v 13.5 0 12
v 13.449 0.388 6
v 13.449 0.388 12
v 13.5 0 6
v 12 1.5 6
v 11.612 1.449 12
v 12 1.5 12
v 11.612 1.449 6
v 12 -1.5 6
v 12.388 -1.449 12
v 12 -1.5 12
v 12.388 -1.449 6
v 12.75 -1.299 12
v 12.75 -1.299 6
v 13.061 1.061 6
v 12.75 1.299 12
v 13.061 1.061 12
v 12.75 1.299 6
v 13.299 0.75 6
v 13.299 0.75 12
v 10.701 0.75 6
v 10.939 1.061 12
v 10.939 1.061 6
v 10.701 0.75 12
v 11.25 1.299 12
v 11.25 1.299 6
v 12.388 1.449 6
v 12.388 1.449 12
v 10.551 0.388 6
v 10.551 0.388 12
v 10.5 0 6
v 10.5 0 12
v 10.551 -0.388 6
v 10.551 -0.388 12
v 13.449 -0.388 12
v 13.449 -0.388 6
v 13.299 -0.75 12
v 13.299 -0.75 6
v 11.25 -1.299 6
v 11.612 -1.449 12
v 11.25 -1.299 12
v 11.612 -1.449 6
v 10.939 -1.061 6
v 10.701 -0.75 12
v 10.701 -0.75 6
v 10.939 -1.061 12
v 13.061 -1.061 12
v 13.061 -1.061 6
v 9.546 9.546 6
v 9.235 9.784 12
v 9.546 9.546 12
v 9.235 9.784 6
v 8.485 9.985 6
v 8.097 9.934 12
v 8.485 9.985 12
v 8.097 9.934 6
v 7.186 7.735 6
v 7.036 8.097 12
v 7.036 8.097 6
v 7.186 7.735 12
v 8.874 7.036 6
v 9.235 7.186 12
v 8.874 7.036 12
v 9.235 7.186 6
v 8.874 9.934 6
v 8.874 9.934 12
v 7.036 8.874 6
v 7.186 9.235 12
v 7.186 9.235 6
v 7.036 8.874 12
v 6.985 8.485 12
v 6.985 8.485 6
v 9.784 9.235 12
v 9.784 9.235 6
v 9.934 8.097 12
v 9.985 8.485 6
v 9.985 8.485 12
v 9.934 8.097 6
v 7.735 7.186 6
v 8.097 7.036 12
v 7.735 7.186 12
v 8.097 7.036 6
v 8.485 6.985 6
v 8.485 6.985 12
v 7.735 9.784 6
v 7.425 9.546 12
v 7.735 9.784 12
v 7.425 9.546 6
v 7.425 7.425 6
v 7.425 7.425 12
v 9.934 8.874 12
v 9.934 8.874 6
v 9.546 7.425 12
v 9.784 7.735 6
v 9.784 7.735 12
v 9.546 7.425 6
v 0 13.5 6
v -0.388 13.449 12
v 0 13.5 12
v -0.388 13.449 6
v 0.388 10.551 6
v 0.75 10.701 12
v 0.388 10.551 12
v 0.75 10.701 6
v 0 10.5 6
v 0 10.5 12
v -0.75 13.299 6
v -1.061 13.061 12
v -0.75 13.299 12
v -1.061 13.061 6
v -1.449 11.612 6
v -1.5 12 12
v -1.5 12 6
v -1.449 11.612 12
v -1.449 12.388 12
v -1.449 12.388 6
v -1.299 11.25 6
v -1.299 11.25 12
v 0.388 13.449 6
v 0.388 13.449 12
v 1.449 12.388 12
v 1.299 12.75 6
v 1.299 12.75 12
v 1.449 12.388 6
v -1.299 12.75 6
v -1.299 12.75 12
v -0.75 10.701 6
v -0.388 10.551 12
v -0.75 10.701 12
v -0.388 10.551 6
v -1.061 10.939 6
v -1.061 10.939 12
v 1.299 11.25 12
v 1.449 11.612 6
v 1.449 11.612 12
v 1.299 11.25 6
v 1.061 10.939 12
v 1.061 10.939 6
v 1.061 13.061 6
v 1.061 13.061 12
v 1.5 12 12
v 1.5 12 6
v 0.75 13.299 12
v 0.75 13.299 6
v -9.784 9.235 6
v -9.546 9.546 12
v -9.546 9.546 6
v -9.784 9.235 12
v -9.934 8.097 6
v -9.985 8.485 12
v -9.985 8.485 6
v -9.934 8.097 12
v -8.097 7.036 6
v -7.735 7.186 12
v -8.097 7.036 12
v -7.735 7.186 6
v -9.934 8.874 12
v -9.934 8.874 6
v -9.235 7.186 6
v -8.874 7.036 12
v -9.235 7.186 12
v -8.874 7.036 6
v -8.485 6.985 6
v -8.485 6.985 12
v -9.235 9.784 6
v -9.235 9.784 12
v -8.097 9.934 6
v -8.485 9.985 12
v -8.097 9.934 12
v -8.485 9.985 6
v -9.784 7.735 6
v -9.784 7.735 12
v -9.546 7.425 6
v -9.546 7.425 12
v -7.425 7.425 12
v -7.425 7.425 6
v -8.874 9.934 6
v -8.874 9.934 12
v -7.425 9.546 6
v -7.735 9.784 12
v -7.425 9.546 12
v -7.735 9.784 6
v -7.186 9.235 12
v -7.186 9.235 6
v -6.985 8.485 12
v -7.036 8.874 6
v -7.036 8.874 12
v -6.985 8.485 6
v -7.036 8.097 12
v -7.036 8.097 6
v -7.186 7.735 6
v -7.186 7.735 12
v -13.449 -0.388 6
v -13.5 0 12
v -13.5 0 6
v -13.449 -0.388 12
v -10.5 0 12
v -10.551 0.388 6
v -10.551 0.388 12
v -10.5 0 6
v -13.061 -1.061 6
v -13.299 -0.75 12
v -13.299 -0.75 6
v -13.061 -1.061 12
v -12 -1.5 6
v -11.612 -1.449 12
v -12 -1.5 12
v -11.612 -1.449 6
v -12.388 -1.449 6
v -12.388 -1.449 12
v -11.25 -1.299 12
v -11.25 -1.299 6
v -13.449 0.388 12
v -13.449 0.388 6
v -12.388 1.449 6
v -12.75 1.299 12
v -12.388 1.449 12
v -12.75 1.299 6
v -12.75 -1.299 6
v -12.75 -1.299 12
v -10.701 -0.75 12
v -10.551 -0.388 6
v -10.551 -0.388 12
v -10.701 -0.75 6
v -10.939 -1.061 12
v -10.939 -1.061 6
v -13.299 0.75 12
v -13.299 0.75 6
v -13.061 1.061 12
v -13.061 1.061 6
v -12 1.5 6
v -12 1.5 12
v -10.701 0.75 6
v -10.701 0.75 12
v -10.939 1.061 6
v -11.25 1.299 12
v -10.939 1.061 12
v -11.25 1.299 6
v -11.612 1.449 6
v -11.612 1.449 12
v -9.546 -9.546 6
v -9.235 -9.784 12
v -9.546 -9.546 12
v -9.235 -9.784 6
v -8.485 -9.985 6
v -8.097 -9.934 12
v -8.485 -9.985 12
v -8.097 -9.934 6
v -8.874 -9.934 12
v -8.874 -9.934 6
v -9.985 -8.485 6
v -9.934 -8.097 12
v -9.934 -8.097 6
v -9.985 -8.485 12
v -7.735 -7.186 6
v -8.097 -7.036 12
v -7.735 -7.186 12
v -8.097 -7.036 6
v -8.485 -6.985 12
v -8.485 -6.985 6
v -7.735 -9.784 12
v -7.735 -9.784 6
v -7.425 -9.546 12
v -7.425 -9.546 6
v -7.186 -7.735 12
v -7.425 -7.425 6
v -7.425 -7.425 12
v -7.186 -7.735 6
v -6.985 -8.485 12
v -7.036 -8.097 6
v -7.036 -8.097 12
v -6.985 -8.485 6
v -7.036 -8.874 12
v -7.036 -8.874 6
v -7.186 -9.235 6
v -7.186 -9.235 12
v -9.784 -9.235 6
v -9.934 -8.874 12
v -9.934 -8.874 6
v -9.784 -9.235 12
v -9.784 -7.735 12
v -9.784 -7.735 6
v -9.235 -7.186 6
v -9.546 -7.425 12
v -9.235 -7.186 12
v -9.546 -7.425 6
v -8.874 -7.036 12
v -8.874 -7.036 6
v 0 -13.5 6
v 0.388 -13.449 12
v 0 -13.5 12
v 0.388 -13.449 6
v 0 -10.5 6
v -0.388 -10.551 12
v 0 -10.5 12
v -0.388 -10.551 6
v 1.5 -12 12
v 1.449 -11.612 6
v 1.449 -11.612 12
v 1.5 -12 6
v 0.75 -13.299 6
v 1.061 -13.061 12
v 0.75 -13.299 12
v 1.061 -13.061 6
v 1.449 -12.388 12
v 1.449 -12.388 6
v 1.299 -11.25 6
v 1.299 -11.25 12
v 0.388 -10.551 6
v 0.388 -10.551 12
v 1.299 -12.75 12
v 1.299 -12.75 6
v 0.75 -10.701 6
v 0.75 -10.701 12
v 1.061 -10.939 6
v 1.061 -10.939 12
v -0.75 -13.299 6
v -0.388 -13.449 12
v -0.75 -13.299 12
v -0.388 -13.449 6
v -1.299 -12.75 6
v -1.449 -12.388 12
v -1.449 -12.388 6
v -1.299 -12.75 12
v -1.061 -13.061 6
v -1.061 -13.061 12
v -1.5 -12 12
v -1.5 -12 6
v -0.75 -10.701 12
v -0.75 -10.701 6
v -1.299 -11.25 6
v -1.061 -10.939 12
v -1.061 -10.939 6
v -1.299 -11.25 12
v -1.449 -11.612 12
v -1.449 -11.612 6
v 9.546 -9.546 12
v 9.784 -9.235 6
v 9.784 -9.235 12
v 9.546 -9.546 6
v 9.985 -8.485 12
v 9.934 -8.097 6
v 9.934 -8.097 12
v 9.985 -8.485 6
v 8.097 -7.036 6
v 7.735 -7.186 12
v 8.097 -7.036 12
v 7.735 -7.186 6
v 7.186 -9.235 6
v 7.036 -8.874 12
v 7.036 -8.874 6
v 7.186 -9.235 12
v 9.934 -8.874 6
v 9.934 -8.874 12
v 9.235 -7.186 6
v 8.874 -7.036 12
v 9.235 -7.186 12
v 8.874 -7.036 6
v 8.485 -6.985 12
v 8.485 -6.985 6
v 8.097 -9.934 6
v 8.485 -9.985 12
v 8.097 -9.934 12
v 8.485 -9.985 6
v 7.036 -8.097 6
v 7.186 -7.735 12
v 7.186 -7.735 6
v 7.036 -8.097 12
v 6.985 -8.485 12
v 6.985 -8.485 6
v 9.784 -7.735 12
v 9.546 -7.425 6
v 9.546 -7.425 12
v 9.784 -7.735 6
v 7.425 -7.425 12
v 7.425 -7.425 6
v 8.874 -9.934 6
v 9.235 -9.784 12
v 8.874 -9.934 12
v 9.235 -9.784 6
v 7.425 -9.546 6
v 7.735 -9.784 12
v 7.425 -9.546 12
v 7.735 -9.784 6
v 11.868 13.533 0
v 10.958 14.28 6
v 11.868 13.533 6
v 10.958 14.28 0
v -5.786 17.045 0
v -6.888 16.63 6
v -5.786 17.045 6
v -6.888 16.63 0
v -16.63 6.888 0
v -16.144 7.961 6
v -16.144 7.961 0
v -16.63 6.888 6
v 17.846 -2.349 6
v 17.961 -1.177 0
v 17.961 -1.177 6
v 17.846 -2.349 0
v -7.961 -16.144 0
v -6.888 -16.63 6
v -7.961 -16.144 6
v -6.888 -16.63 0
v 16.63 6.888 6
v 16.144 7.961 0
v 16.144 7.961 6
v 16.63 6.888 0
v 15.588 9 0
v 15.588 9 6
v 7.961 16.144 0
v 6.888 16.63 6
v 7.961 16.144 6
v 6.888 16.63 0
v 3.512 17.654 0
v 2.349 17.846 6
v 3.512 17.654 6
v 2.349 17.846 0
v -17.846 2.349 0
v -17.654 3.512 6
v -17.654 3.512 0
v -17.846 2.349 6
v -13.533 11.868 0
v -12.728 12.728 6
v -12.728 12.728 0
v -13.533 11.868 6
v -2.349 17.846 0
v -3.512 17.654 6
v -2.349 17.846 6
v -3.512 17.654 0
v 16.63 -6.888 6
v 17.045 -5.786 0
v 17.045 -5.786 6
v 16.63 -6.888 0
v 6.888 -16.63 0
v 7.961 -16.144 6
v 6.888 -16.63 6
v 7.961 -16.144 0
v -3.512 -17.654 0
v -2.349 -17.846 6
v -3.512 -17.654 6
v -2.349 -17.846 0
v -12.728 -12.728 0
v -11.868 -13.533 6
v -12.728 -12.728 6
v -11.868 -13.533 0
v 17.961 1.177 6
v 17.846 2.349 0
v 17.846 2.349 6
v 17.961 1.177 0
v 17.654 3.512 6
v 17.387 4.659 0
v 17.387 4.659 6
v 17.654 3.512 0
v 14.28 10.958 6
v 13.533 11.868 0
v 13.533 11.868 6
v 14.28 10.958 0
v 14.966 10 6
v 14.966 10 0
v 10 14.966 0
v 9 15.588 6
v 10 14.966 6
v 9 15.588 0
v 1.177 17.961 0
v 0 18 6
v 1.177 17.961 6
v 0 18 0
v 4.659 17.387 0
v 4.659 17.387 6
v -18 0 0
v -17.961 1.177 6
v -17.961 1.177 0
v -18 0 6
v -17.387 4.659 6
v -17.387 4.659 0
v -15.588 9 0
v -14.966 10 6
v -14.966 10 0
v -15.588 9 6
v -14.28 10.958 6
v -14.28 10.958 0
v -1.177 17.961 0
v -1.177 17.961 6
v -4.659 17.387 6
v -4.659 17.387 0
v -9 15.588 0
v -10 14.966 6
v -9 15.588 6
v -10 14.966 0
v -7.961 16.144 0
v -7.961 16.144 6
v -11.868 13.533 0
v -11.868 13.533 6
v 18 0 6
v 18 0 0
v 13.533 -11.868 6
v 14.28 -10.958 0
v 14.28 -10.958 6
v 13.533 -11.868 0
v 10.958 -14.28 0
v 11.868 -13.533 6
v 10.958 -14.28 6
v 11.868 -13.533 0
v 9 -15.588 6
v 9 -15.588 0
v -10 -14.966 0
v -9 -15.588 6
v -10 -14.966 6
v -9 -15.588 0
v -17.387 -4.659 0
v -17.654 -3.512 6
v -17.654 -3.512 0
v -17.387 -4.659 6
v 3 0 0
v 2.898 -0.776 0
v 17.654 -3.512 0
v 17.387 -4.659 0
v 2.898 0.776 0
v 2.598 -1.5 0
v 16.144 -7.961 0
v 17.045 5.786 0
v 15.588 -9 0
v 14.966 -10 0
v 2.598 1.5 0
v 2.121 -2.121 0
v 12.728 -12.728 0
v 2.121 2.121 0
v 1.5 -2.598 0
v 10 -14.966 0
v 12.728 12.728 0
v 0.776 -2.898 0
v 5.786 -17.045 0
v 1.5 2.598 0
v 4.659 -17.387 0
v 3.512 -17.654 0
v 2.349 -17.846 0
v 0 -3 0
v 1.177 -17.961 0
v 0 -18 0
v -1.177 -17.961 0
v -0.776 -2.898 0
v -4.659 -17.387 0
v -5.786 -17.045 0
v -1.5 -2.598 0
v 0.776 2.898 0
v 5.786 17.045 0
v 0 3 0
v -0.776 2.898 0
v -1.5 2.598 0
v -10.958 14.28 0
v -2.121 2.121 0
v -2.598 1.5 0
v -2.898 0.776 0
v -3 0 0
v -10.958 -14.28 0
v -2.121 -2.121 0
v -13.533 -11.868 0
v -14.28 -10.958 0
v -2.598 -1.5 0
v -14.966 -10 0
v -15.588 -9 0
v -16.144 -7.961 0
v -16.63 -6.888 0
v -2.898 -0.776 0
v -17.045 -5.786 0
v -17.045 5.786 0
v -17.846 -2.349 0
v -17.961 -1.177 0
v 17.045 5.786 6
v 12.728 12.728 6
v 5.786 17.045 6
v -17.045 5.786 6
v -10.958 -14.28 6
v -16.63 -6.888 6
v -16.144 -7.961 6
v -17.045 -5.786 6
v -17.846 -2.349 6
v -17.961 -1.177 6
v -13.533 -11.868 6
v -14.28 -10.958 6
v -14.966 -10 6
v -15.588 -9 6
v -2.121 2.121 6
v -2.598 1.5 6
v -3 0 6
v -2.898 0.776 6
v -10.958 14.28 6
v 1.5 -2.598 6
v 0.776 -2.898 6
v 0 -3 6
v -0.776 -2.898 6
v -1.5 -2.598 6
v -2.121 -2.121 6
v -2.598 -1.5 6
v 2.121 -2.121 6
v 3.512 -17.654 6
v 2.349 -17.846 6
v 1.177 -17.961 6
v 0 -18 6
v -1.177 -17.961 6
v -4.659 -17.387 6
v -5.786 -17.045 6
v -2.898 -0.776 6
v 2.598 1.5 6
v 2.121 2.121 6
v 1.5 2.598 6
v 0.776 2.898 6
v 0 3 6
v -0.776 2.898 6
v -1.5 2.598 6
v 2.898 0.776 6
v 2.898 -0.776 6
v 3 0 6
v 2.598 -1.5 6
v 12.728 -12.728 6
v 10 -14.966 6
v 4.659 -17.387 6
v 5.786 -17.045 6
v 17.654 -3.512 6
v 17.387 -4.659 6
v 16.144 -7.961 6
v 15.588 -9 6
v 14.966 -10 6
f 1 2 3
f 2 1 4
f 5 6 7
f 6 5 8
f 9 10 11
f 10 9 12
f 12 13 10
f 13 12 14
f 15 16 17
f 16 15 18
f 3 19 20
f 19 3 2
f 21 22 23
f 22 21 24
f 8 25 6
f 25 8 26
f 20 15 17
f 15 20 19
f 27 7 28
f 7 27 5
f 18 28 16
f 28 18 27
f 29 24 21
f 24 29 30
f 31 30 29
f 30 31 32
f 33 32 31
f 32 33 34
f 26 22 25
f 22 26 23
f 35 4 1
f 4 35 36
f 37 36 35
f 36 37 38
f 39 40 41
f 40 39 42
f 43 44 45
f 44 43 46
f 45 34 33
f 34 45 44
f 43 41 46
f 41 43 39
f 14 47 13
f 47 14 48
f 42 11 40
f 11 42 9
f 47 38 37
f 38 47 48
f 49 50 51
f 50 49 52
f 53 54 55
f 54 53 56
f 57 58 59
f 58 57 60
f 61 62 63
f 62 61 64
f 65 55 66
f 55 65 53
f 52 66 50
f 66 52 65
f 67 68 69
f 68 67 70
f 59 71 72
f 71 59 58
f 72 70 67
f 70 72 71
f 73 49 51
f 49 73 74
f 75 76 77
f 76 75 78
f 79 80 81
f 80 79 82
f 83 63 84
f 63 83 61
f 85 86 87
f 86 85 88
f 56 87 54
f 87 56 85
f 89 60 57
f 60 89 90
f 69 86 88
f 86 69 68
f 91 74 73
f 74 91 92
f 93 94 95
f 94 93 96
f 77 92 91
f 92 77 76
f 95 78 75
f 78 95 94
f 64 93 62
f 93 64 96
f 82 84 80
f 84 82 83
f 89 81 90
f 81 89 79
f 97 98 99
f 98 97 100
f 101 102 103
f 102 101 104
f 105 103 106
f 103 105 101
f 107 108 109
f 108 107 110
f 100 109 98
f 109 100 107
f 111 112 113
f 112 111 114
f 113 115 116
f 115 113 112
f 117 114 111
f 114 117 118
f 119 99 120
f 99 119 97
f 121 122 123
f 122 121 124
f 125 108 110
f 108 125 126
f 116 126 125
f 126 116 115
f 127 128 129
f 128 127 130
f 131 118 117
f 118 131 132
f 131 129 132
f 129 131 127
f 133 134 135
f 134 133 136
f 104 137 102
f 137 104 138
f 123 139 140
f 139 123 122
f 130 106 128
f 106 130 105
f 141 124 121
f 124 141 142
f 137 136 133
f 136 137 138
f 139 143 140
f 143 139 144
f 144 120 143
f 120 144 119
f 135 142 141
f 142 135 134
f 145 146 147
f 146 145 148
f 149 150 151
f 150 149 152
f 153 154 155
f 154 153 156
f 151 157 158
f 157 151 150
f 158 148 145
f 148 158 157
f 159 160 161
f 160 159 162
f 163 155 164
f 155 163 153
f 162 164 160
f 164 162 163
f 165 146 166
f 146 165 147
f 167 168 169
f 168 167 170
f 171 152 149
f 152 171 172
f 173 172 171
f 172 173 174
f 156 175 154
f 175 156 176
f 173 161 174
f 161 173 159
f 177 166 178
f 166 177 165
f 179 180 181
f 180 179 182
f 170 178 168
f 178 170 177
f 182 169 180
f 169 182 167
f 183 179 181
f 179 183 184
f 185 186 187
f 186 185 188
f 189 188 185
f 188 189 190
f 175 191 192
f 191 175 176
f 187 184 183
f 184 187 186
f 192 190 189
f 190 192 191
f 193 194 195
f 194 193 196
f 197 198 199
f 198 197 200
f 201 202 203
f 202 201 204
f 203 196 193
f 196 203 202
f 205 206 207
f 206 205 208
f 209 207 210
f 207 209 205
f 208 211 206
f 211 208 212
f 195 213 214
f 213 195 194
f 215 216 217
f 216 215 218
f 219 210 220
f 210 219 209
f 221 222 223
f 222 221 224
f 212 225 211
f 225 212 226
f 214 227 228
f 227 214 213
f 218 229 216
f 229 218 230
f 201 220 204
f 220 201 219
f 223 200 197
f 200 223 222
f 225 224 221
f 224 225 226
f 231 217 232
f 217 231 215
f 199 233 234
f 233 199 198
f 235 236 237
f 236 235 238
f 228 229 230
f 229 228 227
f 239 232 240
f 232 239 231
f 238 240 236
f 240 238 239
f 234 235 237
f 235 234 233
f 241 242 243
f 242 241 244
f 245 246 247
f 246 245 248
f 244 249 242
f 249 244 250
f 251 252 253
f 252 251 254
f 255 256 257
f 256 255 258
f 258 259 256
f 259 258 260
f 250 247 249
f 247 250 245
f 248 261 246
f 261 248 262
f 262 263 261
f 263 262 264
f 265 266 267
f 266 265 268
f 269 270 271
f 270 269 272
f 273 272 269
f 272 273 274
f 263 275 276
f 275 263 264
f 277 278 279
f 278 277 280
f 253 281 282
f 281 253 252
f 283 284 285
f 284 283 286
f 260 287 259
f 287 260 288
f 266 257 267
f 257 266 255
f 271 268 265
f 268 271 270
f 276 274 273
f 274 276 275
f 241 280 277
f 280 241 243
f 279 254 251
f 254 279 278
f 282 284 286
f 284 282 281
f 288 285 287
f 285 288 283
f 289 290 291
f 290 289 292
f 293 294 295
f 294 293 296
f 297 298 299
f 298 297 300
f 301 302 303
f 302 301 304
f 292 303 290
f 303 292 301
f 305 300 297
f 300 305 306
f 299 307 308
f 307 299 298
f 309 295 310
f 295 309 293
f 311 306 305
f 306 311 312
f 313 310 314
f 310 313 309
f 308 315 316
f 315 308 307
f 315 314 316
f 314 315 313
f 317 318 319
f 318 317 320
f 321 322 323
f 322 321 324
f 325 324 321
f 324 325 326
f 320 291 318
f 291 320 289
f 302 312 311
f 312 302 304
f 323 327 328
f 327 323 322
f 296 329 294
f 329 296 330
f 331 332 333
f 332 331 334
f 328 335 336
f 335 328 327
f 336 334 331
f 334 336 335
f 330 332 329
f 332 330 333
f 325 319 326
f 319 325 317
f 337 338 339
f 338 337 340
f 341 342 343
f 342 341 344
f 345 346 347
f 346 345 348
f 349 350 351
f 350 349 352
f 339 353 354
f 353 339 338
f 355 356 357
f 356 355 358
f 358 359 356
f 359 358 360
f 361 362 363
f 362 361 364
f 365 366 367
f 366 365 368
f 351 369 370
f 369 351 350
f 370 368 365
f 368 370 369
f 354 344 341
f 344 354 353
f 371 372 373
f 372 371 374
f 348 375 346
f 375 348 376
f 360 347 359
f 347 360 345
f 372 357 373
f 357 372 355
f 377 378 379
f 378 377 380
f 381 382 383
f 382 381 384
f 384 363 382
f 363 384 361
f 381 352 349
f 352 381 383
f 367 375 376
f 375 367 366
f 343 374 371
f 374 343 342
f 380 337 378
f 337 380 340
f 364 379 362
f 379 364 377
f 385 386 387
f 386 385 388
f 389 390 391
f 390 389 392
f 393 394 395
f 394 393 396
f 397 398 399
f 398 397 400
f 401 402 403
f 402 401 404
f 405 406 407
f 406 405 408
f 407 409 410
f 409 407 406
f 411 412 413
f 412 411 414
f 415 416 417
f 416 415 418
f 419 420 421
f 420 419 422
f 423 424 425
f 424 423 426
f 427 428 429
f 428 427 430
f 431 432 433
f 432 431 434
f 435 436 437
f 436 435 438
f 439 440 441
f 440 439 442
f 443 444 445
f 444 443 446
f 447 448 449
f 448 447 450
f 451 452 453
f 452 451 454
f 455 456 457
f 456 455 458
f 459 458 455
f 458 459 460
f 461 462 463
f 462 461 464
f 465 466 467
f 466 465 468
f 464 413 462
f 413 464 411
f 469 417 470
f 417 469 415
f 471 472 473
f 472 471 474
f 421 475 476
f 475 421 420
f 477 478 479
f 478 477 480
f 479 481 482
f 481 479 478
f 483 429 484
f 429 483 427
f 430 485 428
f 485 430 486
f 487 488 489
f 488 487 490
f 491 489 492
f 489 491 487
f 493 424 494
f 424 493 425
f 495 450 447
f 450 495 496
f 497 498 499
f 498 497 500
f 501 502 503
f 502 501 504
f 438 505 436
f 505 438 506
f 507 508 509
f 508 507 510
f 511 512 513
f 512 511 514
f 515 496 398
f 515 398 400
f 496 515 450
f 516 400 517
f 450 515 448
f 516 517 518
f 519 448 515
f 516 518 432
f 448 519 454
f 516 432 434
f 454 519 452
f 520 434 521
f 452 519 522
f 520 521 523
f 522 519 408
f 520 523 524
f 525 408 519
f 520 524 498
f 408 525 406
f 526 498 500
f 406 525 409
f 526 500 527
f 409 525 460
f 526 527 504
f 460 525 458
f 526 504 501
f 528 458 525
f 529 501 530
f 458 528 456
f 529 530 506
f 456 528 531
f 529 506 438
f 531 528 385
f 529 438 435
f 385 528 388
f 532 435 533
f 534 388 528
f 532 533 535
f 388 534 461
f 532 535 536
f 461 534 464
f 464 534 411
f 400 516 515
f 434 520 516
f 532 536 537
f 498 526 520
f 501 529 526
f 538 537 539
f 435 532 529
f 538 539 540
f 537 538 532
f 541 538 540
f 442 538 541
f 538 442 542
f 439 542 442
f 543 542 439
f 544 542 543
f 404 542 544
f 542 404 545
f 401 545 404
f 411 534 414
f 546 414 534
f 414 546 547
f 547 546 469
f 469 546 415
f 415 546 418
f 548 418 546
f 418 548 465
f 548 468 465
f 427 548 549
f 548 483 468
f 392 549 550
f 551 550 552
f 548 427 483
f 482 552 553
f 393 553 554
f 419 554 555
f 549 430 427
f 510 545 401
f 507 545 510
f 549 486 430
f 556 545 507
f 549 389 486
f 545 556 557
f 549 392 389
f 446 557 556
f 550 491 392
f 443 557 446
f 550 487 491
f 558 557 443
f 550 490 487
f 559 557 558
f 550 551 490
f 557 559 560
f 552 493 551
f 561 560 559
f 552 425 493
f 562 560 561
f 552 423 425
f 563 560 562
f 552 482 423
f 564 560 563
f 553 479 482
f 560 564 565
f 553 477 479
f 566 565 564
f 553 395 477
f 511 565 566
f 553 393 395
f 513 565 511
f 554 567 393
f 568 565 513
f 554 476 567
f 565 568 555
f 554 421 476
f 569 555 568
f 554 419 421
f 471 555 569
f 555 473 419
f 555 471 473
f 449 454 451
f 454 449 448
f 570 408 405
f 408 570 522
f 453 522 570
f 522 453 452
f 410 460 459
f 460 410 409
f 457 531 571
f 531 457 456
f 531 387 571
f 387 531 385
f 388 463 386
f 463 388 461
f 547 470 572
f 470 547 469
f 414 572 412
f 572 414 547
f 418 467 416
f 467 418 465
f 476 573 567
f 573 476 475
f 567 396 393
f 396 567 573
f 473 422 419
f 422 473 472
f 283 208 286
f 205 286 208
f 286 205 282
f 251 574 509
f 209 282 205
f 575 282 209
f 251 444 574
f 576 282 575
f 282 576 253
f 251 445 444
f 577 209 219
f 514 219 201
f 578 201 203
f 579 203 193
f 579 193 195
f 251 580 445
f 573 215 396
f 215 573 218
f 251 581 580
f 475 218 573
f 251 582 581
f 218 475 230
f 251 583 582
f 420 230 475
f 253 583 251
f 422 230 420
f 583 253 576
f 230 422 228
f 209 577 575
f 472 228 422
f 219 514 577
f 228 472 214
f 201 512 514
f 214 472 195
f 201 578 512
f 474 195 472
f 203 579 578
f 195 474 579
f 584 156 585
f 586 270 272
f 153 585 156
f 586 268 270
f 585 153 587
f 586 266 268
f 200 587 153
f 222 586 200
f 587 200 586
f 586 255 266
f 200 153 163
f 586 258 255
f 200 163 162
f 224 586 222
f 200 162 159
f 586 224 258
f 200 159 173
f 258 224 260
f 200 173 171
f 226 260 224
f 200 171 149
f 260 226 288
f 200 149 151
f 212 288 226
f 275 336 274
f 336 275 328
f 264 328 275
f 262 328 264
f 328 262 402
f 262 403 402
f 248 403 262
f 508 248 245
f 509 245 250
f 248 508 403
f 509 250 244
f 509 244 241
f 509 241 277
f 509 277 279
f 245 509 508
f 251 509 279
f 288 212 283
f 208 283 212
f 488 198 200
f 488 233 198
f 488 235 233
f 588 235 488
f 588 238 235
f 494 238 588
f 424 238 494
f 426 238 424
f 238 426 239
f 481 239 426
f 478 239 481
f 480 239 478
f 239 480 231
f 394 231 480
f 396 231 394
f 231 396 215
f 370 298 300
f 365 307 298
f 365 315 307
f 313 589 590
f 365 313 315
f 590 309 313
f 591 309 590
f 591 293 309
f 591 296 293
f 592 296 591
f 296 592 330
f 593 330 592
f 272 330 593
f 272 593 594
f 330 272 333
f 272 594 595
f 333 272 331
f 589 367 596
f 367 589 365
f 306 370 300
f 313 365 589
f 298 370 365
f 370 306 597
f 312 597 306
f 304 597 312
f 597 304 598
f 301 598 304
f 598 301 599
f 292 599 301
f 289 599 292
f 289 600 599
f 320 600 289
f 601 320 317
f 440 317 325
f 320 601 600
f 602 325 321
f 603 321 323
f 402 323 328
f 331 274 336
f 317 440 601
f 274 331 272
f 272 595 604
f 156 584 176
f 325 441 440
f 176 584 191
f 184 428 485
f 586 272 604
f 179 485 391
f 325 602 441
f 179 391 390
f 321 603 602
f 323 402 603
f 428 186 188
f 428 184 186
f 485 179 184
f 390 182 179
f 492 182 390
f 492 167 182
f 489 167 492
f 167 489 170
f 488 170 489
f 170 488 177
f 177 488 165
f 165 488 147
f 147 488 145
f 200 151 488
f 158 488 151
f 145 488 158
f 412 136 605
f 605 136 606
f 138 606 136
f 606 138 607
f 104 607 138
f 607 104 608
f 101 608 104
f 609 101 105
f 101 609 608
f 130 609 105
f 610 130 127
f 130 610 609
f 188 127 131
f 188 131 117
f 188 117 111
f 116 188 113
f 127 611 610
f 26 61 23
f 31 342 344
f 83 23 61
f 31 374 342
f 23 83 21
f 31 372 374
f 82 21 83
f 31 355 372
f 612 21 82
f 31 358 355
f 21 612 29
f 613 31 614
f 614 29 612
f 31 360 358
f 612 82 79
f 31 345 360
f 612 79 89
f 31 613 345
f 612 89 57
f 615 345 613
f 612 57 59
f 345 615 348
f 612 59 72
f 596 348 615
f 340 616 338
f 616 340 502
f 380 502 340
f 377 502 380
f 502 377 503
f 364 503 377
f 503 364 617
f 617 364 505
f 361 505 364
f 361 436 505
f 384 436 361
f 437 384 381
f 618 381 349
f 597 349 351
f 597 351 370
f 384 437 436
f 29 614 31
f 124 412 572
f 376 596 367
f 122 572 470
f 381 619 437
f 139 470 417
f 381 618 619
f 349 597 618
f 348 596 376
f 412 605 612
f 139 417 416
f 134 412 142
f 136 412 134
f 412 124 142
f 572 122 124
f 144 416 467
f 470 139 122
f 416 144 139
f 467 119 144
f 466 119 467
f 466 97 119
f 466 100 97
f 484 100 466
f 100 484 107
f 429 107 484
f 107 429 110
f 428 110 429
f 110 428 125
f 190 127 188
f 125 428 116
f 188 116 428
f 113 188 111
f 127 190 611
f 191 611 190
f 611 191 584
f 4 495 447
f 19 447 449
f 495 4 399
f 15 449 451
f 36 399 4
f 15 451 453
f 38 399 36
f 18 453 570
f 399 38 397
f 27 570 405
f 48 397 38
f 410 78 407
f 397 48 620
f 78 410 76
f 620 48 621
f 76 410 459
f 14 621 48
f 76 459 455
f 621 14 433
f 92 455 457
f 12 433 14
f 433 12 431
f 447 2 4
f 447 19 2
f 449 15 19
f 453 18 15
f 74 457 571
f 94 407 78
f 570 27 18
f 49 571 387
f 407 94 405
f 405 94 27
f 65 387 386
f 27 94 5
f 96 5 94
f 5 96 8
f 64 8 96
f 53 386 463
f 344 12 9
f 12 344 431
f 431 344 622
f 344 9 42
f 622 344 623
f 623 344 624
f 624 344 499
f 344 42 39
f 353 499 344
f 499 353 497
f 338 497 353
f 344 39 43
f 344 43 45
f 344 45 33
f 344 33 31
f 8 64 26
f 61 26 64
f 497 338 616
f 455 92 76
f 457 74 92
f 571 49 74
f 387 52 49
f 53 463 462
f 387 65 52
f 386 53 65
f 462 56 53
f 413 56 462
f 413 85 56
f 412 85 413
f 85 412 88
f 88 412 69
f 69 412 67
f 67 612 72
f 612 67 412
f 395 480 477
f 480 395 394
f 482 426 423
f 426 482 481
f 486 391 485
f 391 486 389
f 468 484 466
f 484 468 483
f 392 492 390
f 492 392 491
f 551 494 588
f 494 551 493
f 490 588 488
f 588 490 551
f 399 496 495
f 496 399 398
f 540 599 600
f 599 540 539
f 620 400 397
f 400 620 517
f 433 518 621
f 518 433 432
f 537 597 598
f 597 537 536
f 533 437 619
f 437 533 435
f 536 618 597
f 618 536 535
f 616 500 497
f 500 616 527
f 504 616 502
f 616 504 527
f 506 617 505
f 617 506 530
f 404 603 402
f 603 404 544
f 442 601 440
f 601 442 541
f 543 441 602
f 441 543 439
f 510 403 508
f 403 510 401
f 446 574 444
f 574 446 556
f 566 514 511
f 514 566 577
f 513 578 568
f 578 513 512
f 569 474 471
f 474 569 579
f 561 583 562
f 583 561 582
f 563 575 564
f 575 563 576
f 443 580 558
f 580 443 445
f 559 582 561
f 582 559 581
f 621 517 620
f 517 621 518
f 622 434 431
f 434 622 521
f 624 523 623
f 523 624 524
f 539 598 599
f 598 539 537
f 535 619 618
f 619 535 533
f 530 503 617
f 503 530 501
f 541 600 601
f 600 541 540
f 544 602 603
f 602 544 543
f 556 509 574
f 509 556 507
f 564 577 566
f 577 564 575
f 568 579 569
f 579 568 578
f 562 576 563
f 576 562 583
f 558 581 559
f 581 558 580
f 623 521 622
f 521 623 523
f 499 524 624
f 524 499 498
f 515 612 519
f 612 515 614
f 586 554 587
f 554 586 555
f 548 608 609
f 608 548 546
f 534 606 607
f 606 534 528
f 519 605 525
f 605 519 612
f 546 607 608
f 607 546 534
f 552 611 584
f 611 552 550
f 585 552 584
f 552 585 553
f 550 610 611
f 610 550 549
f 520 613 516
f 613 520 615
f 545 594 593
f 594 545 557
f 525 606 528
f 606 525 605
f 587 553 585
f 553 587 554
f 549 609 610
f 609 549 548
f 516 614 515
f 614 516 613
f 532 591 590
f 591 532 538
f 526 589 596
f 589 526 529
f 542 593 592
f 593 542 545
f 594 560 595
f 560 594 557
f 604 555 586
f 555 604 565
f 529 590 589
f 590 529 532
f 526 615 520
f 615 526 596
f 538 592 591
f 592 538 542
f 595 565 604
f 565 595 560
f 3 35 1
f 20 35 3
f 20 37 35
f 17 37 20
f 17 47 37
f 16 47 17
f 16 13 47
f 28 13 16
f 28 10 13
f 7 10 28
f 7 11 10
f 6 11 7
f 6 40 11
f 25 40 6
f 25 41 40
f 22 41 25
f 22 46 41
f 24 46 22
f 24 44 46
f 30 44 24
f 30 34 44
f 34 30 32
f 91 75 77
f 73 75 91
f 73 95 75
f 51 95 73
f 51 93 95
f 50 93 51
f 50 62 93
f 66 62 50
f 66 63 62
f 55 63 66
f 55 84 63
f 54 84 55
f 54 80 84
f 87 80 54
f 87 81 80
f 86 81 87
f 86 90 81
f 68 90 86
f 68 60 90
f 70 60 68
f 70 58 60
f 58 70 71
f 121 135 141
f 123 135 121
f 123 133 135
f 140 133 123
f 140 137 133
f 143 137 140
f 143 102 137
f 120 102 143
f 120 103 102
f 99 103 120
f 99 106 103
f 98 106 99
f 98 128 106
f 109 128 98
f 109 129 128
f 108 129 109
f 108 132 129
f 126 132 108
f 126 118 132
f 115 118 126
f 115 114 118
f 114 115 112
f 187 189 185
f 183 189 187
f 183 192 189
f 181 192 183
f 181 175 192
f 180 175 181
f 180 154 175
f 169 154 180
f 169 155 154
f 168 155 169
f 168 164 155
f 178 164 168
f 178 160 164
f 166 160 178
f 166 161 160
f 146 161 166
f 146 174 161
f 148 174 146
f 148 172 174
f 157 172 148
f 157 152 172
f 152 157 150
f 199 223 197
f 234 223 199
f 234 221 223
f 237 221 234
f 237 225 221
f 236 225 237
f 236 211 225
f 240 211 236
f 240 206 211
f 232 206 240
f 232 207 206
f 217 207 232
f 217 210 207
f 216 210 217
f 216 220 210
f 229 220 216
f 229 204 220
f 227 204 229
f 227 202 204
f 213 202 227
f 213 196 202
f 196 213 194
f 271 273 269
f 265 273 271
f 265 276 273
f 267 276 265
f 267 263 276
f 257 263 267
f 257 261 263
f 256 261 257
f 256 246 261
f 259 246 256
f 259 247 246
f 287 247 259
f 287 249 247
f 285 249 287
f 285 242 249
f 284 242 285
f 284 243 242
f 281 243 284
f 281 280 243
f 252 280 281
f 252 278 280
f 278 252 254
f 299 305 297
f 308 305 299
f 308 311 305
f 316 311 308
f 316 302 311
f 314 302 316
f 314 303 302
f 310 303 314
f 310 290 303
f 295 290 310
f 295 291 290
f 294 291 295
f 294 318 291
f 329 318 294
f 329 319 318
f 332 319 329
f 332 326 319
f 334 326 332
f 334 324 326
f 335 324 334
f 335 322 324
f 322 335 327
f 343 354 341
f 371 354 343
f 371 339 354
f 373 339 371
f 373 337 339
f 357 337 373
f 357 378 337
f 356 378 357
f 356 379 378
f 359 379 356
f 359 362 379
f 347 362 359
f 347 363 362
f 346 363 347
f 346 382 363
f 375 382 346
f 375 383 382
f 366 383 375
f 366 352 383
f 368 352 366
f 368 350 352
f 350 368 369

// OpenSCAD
include <../main.scad>
$holeflg = false;
$chamfflg = false;

UNIT_GS();
